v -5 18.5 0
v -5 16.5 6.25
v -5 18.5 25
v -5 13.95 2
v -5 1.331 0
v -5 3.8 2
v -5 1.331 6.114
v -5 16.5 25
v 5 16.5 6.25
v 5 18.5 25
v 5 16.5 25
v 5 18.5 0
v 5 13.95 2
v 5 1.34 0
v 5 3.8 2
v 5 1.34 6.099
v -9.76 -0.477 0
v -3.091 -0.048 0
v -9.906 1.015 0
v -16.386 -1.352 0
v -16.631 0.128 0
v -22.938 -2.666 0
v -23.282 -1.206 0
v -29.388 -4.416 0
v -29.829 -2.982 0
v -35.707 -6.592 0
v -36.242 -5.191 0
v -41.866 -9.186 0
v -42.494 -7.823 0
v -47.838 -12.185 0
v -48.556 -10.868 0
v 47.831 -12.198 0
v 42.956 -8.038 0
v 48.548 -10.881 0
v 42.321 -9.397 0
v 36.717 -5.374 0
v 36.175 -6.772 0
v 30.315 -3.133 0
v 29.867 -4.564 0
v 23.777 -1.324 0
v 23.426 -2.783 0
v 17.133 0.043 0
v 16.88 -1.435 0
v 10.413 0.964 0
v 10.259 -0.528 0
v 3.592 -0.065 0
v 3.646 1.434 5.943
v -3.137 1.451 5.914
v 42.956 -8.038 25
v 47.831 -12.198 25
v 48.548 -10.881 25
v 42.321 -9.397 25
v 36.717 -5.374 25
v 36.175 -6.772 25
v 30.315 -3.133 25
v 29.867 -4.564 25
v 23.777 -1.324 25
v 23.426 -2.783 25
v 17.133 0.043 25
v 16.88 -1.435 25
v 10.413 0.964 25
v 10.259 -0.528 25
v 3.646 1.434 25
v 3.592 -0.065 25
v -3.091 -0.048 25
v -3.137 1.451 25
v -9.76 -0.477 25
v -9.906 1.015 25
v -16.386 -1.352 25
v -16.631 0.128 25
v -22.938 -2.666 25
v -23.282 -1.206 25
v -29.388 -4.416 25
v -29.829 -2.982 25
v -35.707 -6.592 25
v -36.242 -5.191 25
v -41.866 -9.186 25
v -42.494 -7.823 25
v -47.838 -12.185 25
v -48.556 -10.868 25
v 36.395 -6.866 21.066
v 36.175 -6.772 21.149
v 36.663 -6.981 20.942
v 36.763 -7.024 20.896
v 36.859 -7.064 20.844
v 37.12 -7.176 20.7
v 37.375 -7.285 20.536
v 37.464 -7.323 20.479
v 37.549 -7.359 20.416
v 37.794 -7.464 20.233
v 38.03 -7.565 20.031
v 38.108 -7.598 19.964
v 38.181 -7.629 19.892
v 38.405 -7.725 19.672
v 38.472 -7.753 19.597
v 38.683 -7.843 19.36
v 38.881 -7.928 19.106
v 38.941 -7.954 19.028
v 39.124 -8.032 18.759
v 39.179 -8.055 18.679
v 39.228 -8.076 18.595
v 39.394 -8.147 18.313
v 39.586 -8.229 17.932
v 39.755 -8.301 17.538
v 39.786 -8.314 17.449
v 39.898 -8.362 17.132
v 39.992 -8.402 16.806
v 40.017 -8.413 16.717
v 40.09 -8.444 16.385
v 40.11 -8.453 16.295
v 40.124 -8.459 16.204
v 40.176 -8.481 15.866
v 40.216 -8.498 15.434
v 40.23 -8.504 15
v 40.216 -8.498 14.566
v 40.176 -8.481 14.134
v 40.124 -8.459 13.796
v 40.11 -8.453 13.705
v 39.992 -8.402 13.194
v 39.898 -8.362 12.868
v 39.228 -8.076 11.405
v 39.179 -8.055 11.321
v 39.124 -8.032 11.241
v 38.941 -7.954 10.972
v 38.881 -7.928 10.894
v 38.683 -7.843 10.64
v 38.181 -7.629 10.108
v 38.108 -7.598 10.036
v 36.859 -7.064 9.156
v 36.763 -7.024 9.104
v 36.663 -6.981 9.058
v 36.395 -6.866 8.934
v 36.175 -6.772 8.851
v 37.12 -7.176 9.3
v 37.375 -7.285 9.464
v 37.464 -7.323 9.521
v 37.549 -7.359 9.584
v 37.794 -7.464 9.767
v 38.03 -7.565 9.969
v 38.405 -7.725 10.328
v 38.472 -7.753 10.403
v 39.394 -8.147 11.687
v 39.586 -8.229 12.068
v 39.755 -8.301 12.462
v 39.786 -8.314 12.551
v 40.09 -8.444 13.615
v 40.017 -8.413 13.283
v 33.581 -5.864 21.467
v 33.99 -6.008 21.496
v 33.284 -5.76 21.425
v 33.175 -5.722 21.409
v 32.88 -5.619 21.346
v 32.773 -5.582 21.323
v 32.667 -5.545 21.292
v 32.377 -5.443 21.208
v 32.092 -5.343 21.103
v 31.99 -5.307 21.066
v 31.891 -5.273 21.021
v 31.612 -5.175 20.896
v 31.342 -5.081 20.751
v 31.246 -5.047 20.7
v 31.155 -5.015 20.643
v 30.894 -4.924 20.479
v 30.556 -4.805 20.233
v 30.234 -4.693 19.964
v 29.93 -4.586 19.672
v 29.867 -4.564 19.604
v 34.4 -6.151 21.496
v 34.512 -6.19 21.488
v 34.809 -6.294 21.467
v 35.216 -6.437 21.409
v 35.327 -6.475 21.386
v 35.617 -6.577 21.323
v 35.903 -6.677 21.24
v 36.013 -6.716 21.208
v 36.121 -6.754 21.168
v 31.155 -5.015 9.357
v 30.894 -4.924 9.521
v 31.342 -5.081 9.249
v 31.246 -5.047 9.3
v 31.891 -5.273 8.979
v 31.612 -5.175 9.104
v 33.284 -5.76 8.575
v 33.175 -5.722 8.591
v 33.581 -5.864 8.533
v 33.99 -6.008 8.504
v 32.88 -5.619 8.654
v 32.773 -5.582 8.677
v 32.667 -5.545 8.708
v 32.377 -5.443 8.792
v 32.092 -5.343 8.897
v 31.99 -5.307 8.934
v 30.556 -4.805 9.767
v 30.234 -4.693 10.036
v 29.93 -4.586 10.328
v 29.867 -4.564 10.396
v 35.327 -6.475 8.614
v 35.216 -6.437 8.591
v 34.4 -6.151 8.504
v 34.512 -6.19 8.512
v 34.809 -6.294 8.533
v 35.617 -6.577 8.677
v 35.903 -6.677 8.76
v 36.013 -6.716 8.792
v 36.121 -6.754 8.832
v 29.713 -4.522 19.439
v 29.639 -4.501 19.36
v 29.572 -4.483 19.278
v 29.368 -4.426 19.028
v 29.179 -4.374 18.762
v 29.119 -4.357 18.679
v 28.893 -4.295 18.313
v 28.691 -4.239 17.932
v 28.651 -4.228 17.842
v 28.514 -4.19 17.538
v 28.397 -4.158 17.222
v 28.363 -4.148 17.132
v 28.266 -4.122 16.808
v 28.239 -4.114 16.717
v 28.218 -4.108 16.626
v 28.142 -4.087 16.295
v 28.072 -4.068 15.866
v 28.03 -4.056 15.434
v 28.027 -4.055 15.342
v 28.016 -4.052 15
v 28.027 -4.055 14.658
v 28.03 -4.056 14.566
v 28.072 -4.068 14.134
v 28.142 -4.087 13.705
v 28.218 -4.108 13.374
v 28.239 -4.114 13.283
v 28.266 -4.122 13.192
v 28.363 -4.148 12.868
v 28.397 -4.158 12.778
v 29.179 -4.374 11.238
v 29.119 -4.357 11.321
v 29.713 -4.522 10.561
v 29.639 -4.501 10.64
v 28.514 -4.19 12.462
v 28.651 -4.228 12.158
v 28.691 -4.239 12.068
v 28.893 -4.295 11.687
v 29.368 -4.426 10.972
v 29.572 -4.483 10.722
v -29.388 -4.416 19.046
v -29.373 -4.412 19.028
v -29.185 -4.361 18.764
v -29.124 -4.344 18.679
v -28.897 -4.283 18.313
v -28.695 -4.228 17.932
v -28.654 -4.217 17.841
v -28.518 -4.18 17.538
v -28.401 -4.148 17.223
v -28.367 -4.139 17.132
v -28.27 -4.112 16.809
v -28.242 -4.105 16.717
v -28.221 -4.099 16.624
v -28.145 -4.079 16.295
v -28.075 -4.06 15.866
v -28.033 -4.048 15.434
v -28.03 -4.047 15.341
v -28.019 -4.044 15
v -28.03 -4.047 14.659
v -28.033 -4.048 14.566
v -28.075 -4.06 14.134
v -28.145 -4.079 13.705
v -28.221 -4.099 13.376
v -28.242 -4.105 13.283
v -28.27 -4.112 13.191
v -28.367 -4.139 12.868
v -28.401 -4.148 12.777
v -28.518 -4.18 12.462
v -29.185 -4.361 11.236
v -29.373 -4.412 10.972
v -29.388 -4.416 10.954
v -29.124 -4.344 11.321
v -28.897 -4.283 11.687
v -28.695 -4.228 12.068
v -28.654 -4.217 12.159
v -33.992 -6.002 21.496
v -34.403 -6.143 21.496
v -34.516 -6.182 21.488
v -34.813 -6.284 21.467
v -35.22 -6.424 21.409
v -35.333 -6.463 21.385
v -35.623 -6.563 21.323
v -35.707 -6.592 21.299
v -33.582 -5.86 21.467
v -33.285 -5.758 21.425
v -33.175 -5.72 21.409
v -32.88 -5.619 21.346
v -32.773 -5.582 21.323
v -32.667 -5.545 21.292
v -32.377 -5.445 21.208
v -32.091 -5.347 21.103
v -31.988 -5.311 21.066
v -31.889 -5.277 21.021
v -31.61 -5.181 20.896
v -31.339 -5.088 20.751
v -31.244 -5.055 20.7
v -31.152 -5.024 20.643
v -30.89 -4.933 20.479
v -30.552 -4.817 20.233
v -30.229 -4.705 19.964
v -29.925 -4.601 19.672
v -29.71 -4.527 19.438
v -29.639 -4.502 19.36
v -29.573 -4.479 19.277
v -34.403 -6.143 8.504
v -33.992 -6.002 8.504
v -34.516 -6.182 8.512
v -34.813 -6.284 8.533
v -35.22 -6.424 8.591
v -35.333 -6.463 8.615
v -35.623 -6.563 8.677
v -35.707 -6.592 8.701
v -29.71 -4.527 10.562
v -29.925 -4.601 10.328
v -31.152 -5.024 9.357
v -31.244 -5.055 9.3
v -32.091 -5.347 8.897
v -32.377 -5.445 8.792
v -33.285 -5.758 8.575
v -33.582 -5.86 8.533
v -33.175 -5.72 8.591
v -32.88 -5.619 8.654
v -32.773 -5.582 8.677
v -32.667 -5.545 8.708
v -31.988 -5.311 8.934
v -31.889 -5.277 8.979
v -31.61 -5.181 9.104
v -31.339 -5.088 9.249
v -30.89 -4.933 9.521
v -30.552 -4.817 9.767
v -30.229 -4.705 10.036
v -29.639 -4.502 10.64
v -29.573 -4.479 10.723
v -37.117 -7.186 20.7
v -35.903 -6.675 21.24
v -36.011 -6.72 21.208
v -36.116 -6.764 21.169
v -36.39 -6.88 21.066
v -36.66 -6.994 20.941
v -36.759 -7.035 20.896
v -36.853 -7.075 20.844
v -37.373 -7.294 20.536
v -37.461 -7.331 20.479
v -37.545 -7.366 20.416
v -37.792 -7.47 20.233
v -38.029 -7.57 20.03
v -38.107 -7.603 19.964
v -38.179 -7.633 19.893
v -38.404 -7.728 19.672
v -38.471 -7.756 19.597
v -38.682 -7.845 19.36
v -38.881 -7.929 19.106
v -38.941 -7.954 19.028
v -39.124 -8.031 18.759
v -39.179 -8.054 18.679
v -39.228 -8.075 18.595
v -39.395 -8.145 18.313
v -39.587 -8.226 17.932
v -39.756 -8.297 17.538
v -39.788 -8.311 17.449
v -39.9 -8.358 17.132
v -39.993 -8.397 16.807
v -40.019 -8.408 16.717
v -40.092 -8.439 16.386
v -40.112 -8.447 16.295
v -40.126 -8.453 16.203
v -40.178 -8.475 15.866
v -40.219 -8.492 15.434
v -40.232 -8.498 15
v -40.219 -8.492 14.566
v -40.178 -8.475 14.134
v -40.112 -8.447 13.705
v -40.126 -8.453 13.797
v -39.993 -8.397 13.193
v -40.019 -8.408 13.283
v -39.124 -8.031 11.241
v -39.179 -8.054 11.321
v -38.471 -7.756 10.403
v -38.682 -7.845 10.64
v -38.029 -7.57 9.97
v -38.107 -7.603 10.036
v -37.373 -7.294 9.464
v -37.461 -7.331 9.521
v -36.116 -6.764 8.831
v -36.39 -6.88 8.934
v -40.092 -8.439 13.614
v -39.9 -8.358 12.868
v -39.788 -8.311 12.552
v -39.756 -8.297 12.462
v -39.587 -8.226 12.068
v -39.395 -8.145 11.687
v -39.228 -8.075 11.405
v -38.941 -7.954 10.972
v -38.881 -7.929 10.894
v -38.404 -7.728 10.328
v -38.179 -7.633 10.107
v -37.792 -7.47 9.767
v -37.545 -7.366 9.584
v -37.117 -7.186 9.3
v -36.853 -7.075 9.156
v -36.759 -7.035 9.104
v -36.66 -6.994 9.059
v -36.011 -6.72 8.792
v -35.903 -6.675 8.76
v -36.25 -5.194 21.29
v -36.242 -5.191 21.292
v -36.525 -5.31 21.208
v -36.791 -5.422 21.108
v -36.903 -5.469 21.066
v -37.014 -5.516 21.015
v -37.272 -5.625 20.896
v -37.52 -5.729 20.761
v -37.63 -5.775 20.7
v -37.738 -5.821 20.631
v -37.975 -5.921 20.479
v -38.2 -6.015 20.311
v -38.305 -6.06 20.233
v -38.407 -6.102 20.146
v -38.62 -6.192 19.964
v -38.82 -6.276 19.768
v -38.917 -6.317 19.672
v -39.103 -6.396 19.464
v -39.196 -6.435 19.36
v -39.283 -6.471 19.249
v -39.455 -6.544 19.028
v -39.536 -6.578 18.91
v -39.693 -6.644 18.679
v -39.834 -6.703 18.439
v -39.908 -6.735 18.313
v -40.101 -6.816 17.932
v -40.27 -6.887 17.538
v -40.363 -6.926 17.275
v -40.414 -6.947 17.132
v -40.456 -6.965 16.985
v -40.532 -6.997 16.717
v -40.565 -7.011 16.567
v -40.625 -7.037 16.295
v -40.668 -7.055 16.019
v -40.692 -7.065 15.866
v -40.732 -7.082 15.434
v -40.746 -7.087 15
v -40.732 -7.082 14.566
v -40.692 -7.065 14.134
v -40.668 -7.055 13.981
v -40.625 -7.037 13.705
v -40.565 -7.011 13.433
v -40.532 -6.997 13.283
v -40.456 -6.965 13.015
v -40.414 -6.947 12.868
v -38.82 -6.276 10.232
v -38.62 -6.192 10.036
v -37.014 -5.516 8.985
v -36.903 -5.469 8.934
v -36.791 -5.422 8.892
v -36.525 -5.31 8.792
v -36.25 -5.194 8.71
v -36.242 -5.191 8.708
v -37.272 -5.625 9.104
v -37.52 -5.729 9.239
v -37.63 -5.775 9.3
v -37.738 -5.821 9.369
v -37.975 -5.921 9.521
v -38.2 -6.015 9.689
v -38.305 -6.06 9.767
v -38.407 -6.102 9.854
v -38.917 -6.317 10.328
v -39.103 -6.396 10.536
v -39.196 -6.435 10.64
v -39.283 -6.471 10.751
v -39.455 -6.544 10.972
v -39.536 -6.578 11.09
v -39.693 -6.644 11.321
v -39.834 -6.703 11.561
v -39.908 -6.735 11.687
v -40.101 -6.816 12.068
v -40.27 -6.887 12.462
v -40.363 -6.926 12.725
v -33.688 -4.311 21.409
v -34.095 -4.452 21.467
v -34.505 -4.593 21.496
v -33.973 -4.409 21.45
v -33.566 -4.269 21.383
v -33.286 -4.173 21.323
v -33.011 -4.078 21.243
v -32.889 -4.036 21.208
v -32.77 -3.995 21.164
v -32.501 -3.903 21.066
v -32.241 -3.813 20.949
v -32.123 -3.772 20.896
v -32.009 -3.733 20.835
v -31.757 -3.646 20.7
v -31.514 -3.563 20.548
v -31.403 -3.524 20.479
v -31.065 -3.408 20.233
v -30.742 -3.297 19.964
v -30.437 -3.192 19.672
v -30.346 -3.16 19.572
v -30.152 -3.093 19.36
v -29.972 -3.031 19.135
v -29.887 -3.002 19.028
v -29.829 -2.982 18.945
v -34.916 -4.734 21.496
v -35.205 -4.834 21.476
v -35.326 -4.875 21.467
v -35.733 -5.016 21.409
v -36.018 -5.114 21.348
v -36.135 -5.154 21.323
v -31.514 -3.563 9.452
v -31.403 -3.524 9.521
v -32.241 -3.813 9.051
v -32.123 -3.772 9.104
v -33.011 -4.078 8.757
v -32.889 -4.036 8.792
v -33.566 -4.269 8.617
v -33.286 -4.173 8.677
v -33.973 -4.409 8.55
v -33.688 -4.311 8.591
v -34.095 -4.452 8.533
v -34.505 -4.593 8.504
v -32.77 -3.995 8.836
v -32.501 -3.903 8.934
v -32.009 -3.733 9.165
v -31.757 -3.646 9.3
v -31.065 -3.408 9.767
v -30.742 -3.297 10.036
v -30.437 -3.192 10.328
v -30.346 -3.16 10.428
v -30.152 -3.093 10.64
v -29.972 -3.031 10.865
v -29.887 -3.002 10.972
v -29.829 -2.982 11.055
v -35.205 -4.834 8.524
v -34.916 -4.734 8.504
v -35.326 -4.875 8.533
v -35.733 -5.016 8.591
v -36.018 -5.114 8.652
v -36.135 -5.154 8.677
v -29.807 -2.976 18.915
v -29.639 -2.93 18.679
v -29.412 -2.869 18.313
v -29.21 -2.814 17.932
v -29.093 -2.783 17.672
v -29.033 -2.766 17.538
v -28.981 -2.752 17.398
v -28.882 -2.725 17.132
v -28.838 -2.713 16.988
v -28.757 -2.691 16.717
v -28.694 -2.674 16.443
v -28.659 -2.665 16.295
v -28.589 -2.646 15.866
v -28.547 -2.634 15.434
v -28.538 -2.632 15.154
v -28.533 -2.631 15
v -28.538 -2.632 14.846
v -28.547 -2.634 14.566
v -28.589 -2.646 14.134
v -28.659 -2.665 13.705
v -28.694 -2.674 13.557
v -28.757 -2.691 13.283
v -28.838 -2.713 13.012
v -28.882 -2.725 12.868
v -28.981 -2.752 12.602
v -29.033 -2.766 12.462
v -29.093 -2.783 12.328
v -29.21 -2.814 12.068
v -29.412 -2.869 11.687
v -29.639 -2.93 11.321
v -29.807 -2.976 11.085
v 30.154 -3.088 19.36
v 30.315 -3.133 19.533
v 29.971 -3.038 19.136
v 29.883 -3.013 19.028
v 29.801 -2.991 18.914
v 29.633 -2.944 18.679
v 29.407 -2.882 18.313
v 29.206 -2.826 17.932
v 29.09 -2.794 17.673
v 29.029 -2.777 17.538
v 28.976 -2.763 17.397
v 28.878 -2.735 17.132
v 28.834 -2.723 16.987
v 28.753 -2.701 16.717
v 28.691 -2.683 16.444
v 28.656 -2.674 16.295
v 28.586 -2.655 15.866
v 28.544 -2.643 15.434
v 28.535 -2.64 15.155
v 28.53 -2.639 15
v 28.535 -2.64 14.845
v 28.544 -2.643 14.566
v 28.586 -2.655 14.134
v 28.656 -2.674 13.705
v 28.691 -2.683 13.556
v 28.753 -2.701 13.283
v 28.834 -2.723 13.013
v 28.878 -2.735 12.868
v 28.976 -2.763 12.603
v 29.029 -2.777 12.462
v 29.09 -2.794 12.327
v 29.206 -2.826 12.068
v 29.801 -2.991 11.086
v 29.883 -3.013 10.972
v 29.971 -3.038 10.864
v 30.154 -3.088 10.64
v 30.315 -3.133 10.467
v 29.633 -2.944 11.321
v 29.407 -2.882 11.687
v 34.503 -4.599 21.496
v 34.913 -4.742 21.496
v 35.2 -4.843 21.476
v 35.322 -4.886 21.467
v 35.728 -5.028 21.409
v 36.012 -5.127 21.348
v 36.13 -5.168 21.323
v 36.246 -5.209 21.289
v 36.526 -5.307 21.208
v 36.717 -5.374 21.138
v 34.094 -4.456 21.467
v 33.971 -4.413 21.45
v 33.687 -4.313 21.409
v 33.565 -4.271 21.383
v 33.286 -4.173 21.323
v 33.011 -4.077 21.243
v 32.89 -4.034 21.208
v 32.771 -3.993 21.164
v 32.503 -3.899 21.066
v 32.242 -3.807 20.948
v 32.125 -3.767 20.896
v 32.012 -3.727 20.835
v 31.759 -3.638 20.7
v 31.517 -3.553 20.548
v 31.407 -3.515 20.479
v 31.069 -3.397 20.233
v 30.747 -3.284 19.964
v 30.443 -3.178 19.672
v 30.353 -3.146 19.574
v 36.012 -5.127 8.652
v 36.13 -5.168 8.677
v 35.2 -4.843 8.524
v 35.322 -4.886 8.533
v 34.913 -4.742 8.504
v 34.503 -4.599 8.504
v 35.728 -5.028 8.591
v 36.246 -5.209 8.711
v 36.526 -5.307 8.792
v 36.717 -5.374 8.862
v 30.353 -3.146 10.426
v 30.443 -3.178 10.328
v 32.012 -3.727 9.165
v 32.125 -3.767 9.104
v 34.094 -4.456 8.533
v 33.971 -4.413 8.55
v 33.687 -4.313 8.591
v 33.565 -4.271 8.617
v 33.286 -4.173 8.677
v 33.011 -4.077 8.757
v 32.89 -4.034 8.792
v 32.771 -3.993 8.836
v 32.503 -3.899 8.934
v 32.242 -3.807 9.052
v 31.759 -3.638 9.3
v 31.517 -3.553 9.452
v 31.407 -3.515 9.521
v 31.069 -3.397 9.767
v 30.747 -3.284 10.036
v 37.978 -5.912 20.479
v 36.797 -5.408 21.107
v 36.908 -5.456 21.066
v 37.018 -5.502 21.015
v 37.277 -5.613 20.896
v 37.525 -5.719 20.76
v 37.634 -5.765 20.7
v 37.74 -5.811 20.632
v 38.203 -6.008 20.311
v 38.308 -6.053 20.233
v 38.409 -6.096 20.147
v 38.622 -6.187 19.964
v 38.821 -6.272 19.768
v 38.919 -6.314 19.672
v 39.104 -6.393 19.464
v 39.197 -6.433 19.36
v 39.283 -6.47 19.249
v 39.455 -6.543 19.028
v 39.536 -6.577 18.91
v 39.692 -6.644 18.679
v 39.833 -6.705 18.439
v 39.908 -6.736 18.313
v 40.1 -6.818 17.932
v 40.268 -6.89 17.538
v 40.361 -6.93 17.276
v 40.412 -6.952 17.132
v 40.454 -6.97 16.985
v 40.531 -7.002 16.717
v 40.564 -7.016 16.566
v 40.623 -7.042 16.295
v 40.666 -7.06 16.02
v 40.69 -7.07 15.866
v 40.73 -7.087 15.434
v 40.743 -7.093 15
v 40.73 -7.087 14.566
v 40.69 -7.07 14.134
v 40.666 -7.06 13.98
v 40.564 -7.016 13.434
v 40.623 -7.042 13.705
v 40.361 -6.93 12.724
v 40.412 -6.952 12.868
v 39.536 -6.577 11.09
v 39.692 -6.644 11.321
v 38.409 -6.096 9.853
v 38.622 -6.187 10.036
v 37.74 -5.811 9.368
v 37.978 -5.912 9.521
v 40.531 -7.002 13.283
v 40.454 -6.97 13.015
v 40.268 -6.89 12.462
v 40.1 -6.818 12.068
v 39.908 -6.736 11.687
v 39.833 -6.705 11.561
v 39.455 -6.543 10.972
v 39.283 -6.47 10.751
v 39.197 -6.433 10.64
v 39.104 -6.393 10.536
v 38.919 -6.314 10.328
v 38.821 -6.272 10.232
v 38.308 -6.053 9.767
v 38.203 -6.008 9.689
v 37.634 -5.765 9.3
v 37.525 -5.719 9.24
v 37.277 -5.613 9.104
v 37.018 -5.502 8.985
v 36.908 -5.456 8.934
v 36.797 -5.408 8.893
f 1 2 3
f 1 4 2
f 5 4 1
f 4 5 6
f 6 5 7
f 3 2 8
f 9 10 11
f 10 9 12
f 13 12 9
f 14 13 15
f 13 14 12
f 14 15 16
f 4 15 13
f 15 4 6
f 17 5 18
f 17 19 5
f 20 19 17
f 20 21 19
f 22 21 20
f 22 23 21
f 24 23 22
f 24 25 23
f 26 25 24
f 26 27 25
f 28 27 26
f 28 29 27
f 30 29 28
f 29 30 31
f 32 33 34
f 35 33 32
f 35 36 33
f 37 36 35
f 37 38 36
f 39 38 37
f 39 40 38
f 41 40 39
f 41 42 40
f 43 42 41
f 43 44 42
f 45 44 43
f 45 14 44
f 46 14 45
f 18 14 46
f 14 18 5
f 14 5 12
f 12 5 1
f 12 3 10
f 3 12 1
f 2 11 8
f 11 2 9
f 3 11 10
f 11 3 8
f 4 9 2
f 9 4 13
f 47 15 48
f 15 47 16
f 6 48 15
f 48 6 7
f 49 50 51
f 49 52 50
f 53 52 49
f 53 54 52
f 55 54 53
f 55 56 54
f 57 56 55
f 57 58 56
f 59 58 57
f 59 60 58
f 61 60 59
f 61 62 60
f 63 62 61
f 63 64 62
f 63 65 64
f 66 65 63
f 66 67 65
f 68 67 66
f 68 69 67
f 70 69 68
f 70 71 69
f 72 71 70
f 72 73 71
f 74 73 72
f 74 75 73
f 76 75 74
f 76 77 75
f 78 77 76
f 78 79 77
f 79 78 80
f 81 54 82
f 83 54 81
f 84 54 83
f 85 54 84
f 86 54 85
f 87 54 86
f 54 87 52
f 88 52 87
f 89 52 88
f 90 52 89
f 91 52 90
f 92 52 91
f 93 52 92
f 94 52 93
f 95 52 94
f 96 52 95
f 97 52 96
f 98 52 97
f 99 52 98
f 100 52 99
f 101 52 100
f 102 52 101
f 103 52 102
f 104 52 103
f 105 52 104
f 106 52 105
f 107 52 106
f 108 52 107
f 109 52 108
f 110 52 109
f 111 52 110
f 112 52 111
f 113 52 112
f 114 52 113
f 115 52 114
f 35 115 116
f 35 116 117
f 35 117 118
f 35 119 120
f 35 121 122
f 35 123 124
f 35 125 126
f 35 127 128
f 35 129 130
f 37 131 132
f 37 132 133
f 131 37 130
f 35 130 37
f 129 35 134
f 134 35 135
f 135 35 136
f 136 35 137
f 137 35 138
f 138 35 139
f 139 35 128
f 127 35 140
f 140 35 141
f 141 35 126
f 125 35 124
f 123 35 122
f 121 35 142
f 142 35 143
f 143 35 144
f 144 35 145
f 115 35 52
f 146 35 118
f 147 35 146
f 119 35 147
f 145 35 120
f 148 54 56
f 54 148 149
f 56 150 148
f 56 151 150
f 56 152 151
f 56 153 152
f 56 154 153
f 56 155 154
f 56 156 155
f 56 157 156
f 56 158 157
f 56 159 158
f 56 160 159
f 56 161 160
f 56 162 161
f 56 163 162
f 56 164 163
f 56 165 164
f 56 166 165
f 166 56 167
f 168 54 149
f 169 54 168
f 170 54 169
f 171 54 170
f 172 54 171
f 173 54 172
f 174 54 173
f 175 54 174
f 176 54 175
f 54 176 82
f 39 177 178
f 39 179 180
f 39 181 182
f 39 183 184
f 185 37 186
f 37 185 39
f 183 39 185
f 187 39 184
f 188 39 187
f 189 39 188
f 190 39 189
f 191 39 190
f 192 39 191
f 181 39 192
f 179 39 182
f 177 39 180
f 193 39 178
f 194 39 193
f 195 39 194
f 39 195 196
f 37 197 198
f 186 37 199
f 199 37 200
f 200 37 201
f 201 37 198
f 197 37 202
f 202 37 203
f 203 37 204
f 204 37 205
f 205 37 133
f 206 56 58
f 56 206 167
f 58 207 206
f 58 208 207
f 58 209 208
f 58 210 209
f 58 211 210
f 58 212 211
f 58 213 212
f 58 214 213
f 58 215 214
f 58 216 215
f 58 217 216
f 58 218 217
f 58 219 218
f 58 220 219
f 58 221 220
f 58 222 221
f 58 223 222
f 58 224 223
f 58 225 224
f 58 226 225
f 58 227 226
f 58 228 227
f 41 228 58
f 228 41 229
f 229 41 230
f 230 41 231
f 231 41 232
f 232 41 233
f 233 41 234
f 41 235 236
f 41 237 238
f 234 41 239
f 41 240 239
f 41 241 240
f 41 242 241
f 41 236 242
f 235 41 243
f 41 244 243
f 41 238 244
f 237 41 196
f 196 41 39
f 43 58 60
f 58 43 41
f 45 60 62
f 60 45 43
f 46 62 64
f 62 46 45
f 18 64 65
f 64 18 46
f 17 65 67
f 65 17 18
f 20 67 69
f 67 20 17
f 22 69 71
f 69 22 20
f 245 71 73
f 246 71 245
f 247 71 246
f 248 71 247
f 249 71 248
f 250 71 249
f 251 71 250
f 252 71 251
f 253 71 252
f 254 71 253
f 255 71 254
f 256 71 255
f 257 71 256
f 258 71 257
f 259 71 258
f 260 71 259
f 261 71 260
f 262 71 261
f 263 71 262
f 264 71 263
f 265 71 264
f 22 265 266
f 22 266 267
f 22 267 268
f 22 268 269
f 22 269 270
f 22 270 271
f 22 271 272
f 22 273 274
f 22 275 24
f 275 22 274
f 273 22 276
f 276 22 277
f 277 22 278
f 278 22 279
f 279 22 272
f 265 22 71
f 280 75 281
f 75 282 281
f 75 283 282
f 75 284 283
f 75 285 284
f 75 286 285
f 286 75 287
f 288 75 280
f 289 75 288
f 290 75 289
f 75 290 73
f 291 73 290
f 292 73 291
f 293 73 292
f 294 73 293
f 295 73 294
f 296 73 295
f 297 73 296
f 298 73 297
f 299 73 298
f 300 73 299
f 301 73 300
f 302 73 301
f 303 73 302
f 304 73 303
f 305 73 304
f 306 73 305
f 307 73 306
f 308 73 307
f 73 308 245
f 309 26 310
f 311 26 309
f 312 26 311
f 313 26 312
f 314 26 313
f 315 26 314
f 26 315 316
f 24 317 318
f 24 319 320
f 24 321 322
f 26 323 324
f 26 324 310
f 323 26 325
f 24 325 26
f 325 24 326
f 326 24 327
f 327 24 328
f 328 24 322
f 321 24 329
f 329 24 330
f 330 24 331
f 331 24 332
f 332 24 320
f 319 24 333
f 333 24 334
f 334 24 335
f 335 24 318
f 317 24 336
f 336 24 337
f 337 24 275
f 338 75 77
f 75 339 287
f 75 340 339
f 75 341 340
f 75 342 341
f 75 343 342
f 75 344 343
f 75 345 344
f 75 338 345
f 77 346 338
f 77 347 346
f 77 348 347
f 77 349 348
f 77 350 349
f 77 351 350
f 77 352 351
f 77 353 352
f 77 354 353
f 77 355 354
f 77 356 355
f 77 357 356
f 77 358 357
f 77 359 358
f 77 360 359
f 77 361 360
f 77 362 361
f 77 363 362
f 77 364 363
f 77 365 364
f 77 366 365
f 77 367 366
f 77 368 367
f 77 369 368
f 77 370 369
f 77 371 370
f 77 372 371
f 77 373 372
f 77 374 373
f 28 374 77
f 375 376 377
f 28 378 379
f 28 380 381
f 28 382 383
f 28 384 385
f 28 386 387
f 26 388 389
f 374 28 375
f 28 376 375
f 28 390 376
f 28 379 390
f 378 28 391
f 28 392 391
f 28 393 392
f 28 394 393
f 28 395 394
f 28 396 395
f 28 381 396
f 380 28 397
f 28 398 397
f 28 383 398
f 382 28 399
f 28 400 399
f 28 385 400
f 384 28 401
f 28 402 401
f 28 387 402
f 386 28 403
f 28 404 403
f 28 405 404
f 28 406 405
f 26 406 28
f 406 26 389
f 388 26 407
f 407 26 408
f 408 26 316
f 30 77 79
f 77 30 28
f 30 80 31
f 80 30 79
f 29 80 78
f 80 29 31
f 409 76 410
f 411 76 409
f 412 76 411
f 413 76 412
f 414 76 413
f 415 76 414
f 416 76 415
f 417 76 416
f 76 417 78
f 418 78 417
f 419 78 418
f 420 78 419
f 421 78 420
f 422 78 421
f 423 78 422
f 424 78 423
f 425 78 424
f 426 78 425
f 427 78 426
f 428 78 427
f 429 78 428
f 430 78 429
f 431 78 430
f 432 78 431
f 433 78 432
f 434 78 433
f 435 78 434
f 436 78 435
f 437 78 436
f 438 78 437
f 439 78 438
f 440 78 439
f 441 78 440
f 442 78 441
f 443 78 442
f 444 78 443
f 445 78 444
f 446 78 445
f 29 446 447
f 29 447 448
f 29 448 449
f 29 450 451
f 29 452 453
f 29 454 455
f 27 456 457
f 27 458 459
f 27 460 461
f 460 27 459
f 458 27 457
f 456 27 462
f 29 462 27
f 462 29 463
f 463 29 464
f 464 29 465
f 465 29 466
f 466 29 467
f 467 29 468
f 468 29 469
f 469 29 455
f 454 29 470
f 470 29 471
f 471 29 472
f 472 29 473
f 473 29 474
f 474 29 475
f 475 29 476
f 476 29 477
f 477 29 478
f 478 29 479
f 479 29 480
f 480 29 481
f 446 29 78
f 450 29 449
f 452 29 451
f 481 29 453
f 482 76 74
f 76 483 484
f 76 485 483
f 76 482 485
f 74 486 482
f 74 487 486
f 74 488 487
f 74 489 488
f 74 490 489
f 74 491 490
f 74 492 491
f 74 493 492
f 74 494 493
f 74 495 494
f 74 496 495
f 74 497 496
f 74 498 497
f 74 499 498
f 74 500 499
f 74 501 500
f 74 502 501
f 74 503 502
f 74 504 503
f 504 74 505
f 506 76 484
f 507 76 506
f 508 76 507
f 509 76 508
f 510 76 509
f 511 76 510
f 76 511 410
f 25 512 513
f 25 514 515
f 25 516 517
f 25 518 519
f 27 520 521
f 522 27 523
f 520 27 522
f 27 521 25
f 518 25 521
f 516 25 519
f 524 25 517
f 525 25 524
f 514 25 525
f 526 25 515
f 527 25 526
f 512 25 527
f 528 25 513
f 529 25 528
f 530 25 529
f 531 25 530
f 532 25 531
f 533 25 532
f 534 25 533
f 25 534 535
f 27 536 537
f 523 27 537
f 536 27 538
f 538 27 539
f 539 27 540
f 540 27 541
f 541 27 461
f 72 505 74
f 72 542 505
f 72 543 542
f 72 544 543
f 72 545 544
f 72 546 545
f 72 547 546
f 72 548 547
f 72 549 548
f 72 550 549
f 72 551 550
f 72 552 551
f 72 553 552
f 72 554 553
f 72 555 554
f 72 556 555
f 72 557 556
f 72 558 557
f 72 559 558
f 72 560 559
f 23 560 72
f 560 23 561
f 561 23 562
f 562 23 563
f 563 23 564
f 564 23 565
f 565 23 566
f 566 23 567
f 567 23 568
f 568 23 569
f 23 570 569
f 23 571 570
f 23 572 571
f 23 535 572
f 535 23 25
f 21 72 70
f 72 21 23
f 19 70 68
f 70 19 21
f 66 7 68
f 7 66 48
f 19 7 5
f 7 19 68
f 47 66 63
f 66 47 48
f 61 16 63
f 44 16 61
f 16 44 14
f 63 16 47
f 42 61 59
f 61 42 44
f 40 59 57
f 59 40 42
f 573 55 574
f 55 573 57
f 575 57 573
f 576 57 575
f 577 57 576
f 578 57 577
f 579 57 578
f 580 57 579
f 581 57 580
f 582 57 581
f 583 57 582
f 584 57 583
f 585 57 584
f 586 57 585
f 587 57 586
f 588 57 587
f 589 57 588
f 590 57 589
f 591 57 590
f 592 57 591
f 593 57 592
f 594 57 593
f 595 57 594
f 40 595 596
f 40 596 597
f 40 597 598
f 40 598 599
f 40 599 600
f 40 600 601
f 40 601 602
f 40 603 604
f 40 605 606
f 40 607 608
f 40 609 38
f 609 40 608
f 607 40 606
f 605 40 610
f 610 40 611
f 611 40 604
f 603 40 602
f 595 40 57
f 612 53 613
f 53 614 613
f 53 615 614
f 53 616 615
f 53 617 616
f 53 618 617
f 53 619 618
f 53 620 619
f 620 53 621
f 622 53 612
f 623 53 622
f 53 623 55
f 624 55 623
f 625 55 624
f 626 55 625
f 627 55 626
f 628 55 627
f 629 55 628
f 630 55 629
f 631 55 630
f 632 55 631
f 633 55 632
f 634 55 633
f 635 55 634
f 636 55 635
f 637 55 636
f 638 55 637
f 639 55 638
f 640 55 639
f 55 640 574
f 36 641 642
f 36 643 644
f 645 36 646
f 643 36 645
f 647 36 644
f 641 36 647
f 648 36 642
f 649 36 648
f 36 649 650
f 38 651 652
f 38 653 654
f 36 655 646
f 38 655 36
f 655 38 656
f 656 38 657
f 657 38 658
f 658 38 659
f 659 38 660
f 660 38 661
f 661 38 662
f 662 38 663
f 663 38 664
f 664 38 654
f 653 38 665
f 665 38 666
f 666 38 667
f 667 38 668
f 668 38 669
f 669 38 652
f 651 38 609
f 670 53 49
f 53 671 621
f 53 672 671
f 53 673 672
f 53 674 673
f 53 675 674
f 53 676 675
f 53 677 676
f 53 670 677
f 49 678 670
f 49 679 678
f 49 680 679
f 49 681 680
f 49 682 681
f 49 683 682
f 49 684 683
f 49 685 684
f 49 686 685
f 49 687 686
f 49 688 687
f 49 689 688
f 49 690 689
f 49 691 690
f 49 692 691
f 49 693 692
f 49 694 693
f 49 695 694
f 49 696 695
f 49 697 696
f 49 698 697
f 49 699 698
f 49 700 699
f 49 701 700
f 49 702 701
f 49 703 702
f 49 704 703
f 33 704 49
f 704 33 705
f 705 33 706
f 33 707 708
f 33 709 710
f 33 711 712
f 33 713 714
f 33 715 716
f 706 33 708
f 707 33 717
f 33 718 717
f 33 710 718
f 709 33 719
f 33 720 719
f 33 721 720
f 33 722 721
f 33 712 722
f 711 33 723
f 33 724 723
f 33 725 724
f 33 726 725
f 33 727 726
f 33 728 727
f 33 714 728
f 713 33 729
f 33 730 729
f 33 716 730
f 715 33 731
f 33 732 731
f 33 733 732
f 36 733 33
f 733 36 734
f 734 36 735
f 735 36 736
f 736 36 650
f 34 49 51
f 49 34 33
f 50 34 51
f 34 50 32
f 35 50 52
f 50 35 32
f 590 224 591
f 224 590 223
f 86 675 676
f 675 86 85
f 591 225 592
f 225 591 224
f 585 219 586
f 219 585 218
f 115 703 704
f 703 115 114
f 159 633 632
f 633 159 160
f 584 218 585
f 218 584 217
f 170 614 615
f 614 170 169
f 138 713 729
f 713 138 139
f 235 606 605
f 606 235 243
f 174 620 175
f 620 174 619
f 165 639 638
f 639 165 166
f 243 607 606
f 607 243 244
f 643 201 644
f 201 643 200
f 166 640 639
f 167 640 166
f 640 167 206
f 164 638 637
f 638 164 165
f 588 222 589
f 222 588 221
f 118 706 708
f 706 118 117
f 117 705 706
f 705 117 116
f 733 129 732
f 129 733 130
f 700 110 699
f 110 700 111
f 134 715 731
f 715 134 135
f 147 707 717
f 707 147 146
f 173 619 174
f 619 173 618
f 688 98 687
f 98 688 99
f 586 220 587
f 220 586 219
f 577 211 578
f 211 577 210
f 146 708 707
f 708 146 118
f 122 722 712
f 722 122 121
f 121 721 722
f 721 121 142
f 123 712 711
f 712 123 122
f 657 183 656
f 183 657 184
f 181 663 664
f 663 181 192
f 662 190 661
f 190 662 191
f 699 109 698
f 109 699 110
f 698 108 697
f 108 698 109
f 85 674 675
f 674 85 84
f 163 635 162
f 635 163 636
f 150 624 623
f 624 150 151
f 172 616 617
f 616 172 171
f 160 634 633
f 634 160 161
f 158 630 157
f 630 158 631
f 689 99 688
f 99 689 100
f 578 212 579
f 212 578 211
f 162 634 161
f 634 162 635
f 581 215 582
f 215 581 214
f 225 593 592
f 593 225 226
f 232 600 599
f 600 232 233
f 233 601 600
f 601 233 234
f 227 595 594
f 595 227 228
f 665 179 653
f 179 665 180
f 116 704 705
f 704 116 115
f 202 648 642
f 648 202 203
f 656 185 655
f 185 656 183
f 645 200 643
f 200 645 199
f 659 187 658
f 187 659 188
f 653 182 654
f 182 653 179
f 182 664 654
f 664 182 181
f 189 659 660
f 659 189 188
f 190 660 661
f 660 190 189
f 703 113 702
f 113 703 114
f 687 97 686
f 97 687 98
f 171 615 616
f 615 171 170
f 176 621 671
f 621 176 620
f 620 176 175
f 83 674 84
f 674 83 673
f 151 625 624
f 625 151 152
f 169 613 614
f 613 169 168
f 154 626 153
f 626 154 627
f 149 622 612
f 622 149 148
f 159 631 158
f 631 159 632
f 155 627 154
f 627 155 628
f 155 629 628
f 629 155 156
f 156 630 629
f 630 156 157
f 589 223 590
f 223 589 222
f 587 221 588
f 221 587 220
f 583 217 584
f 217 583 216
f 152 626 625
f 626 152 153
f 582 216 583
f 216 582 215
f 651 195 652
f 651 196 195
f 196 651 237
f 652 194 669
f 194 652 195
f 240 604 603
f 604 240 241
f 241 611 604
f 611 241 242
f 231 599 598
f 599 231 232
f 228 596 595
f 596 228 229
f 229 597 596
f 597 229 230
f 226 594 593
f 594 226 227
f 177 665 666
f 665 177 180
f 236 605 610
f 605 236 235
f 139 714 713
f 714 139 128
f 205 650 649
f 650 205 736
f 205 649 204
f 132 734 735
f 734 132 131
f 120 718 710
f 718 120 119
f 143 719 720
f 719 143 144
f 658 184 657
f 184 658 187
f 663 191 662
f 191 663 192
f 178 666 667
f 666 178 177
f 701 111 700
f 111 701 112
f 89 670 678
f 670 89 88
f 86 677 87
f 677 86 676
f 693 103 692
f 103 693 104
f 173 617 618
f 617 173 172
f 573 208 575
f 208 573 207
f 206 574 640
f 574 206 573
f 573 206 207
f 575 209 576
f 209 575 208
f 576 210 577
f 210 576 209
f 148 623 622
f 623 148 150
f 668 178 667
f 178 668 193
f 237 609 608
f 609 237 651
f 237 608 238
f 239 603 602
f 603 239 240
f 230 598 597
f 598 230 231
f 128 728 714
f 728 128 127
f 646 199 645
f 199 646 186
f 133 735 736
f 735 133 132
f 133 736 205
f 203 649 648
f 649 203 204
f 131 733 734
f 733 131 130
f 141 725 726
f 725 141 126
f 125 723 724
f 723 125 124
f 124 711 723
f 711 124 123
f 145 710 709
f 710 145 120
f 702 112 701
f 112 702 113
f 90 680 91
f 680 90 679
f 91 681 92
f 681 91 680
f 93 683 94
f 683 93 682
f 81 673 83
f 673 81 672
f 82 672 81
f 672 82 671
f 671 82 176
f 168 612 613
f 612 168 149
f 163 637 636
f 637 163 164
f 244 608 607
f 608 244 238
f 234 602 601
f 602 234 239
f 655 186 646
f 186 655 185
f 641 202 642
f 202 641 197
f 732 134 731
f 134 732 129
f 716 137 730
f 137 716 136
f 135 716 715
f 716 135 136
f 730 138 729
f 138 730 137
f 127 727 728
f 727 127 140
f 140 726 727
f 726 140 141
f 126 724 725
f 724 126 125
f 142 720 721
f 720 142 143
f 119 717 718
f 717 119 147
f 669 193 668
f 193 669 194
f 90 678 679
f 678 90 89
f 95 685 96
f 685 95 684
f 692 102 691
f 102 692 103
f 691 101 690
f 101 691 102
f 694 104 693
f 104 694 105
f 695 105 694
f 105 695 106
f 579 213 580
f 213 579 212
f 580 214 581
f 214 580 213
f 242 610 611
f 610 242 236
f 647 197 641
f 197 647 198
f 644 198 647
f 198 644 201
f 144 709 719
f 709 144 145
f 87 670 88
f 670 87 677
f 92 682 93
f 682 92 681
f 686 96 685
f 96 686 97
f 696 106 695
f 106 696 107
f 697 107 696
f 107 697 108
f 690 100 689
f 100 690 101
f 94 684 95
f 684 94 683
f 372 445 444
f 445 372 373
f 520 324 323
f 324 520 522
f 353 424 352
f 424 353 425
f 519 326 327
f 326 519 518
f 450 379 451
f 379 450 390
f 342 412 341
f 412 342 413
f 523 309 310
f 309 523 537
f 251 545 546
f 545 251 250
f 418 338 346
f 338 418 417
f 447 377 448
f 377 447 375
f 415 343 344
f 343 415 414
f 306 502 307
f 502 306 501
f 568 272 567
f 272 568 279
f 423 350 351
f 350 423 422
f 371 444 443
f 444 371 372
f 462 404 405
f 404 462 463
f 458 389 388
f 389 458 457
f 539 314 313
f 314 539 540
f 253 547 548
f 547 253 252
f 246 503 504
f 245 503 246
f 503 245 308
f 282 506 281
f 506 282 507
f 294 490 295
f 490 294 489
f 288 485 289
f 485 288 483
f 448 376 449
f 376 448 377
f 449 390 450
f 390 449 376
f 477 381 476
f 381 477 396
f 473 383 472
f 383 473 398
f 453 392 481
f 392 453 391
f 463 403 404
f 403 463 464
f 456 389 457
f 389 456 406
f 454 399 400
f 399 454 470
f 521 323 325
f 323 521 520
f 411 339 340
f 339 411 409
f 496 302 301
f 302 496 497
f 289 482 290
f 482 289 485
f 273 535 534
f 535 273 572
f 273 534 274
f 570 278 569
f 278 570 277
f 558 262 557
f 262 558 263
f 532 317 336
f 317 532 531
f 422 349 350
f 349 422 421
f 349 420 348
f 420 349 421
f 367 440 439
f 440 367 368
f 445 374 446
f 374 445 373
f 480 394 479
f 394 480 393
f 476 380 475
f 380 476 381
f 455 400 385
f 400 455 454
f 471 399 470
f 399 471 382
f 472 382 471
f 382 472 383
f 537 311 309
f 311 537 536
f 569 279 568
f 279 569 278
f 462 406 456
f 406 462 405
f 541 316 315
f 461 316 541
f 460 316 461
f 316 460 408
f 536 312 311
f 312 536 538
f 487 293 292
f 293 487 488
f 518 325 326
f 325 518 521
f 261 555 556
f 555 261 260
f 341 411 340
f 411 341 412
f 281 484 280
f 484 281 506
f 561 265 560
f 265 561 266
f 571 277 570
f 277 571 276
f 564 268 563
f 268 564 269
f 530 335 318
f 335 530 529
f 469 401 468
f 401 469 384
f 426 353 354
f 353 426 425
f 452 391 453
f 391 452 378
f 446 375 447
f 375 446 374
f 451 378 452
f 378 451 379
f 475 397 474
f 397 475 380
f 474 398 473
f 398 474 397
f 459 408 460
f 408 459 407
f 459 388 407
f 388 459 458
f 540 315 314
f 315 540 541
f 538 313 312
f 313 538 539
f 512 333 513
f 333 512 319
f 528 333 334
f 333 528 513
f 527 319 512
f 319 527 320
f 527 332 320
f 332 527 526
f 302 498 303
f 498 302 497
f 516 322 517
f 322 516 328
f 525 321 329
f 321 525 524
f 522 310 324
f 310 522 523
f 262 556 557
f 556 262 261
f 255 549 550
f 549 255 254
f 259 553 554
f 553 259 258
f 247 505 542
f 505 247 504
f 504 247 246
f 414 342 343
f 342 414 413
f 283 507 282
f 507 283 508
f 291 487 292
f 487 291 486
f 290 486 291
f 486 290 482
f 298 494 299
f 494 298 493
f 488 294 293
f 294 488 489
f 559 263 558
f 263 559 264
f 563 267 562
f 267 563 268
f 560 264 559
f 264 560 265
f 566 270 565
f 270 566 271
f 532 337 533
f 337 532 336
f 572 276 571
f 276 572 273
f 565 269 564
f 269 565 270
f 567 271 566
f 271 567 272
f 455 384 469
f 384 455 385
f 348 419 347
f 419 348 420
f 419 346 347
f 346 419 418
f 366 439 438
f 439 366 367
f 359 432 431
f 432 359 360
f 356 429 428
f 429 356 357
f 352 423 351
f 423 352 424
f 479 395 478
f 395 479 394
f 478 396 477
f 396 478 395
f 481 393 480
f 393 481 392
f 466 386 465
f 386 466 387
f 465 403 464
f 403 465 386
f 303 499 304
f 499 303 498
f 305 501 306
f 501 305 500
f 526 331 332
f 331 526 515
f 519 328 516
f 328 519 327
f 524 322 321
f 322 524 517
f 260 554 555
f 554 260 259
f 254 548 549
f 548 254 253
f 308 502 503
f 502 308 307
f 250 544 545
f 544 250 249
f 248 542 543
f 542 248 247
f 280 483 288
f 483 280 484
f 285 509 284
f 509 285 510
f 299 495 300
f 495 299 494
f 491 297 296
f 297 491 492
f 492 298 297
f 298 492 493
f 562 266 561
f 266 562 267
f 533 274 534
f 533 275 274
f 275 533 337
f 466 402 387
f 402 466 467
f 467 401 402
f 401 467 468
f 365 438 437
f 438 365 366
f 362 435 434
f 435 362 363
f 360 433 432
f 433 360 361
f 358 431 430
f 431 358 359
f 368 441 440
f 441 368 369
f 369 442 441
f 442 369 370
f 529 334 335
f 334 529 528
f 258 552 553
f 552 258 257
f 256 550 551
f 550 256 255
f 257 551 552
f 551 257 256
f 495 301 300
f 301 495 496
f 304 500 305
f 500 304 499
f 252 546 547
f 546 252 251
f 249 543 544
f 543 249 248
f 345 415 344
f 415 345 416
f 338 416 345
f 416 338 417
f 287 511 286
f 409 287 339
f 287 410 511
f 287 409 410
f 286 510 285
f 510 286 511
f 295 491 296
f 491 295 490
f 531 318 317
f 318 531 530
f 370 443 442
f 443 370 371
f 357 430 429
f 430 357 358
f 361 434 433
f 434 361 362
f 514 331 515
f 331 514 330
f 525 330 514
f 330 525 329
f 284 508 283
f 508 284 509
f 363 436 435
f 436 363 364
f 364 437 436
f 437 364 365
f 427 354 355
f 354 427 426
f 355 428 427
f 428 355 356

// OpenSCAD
hole_dist = 70;
hole_dia = 13;
carrier_width = 20;
carrier_radius = 100;
carrier_length = hole_dist + 30;
carrier_wall = 1.5;

coil_width = 17.0;
coil_turns = 3;
coil_dia = 10;
coil_w = coil_width * coil_turns;

rx_post_w = 8;
rx_post_h = 50 + 20;
rx_post_wall = 1;
rx_post_box_w = 26.5;
rx_post_box_d = 12;
rx_post_box_h = 26;

carrier_circ = 2 * 3.14159 * carrier_radius + carrier_wall;
carrier_angle = (carrier_length / carrier_circ) * 360;
dist_angle = (hole_dist / carrier_circ) * 360;
post_angle = ((carrier_length - coil_dia) / carrier_circ) * 360;
bottom_angle = (coil_dia / carrier_circ) * 360;

add_rx_box = true;
add_coil_posts = false;
add_rx_post = false;
add_rx_post_box = false;

carrier_width_add = add_rx_box ? 5 : coil_dia;

$fn = 94;

module prism(l, w, h) {
    polyhedron(
        points = [[0,0,0], [l,0,0], [l,w,0], [0,w,0], [0,w,h], [l,w,h]],
        faces = [[0,1,2,3],[5,4,3,2],[0,4,5,1],[0,3,4],[5,2,1]]
    );
}

// https://3dprinting.stackexchange.com/questions/10638/creating-pie-slice-in-openscad
module pie_slice(r = 3.0, a = 30) {     
    intersection() {
        circle(r = r);
        
        square(r);
        
        rotate(a-90)
        square(r);  
    } 
}

module carrier_plate() {
    rotate([0, 0, 90 - carrier_angle / 2])
    linear_extrude(carrier_width + carrier_width_add)
    difference() {
        pie_slice(carrier_radius + carrier_wall, carrier_angle);
        pie_slice(carrier_radius, carrier_angle);
    }
}

module cable_coil() {
    hull() {
        rotate([-90, 0, 0])
        cylinder(d = coil_dia, h = coil_w);

        translate([0, -carrier_radius, -coil_dia / 2])
        rotate([0, 0, 90 - bottom_angle / 2])
        linear_extrude(coil_dia)
        difference() {
            pie_slice(carrier_radius + carrier_wall, bottom_angle);
            pie_slice(carrier_radius, bottom_angle);
        }
    }

    translate([0, -carrier_radius, -carrier_width])
    rotate([0, 0, 90 - bottom_angle / 2])
    linear_extrude(carrier_width)
    difference() {
        pie_slice(carrier_radius + carrier_wall, bottom_angle);
        pie_slice(carrier_radius, bottom_angle);
    }
}

module rx_post() {
    hull() {
        cube([rx_post_w, rx_post_w, 1]);
        
        translate([rx_post_w / 2, rx_post_w / 2, 0])
        cylinder(d = rx_post_w, h = rx_post_h);
    }
    
    if (add_rx_post_box)
    translate([-((rx_post_box_w + 2 * rx_post_wall) - rx_post_w) / 2, 0, rx_post_h])
    difference() {
        cube([rx_post_box_w + 2 * rx_post_wall, rx_post_box_d + 2 * rx_post_wall, rx_post_box_h]);
        
        translate([rx_post_wall, rx_post_wall, 1])
        cube([rx_post_box_w, rx_post_box_d, rx_post_box_h]);
    }
}

rx_box_h = 15;
rx_box_w = 10;
rx_box_d = carrier_width + carrier_width_add;
rx_box_wall = 2.0;

module rx_box() {
    translate([-rx_box_w / 2, 0, -carrier_wall])
    cube([rx_box_w, rx_box_wall, rx_box_h]);
    
    translate([-rx_box_w / 2, 0, rx_box_h])
    cube([rx_box_w, rx_box_d, rx_box_wall]);
    
    rotate([0, 180, 180])
    translate([-rx_box_w / 2, -rx_box_d / 4, -rx_box_h])
    prism(rx_box_w, rx_box_d / 4, rx_box_h / 4);
    
    rotate([0, 0, 180])
    translate([-rx_box_w / 2, -rx_box_d / 4, -0.25])
    prism(rx_box_w, rx_box_d / 4, rx_box_h / 4);
}

module carrier() {
    translate([0, -carrier_radius, 0])
    difference() {
        union() {
            carrier_plate();
            
            if (add_coil_posts)
            for (i = [1, -1])
            rotate([0, 0, i * post_angle / 2])
            translate([0, carrier_radius, carrier_width + coil_dia / 2])
            cable_coil();
            
            if (add_rx_post)
            translate([-rx_post_w / 2, carrier_radius, carrier_width + carrier_width_add])
            rotate([-90, 0, 0])
            rx_post();
            
            if (add_rx_box)
            translate([0, carrier_radius + carrier_wall, carrier_width + carrier_width_add])
            rotate([-90, 0, 0])
            rx_box();
        }
        
        for (i = [1, -1])
        rotate([0, 0, i * dist_angle / 2])
        translate([0, carrier_radius - 1, carrier_width / 2])
        rotate([-90, 0, 0])
        cylinder(d = hole_dia, h = carrier_wall + 2);
    }
}

//cable_coil();
//rx_post();
//rx_box();

translate([0, 0, carrier_width + carrier_width_add])
rotate([0, 180, 0])
carrier();
